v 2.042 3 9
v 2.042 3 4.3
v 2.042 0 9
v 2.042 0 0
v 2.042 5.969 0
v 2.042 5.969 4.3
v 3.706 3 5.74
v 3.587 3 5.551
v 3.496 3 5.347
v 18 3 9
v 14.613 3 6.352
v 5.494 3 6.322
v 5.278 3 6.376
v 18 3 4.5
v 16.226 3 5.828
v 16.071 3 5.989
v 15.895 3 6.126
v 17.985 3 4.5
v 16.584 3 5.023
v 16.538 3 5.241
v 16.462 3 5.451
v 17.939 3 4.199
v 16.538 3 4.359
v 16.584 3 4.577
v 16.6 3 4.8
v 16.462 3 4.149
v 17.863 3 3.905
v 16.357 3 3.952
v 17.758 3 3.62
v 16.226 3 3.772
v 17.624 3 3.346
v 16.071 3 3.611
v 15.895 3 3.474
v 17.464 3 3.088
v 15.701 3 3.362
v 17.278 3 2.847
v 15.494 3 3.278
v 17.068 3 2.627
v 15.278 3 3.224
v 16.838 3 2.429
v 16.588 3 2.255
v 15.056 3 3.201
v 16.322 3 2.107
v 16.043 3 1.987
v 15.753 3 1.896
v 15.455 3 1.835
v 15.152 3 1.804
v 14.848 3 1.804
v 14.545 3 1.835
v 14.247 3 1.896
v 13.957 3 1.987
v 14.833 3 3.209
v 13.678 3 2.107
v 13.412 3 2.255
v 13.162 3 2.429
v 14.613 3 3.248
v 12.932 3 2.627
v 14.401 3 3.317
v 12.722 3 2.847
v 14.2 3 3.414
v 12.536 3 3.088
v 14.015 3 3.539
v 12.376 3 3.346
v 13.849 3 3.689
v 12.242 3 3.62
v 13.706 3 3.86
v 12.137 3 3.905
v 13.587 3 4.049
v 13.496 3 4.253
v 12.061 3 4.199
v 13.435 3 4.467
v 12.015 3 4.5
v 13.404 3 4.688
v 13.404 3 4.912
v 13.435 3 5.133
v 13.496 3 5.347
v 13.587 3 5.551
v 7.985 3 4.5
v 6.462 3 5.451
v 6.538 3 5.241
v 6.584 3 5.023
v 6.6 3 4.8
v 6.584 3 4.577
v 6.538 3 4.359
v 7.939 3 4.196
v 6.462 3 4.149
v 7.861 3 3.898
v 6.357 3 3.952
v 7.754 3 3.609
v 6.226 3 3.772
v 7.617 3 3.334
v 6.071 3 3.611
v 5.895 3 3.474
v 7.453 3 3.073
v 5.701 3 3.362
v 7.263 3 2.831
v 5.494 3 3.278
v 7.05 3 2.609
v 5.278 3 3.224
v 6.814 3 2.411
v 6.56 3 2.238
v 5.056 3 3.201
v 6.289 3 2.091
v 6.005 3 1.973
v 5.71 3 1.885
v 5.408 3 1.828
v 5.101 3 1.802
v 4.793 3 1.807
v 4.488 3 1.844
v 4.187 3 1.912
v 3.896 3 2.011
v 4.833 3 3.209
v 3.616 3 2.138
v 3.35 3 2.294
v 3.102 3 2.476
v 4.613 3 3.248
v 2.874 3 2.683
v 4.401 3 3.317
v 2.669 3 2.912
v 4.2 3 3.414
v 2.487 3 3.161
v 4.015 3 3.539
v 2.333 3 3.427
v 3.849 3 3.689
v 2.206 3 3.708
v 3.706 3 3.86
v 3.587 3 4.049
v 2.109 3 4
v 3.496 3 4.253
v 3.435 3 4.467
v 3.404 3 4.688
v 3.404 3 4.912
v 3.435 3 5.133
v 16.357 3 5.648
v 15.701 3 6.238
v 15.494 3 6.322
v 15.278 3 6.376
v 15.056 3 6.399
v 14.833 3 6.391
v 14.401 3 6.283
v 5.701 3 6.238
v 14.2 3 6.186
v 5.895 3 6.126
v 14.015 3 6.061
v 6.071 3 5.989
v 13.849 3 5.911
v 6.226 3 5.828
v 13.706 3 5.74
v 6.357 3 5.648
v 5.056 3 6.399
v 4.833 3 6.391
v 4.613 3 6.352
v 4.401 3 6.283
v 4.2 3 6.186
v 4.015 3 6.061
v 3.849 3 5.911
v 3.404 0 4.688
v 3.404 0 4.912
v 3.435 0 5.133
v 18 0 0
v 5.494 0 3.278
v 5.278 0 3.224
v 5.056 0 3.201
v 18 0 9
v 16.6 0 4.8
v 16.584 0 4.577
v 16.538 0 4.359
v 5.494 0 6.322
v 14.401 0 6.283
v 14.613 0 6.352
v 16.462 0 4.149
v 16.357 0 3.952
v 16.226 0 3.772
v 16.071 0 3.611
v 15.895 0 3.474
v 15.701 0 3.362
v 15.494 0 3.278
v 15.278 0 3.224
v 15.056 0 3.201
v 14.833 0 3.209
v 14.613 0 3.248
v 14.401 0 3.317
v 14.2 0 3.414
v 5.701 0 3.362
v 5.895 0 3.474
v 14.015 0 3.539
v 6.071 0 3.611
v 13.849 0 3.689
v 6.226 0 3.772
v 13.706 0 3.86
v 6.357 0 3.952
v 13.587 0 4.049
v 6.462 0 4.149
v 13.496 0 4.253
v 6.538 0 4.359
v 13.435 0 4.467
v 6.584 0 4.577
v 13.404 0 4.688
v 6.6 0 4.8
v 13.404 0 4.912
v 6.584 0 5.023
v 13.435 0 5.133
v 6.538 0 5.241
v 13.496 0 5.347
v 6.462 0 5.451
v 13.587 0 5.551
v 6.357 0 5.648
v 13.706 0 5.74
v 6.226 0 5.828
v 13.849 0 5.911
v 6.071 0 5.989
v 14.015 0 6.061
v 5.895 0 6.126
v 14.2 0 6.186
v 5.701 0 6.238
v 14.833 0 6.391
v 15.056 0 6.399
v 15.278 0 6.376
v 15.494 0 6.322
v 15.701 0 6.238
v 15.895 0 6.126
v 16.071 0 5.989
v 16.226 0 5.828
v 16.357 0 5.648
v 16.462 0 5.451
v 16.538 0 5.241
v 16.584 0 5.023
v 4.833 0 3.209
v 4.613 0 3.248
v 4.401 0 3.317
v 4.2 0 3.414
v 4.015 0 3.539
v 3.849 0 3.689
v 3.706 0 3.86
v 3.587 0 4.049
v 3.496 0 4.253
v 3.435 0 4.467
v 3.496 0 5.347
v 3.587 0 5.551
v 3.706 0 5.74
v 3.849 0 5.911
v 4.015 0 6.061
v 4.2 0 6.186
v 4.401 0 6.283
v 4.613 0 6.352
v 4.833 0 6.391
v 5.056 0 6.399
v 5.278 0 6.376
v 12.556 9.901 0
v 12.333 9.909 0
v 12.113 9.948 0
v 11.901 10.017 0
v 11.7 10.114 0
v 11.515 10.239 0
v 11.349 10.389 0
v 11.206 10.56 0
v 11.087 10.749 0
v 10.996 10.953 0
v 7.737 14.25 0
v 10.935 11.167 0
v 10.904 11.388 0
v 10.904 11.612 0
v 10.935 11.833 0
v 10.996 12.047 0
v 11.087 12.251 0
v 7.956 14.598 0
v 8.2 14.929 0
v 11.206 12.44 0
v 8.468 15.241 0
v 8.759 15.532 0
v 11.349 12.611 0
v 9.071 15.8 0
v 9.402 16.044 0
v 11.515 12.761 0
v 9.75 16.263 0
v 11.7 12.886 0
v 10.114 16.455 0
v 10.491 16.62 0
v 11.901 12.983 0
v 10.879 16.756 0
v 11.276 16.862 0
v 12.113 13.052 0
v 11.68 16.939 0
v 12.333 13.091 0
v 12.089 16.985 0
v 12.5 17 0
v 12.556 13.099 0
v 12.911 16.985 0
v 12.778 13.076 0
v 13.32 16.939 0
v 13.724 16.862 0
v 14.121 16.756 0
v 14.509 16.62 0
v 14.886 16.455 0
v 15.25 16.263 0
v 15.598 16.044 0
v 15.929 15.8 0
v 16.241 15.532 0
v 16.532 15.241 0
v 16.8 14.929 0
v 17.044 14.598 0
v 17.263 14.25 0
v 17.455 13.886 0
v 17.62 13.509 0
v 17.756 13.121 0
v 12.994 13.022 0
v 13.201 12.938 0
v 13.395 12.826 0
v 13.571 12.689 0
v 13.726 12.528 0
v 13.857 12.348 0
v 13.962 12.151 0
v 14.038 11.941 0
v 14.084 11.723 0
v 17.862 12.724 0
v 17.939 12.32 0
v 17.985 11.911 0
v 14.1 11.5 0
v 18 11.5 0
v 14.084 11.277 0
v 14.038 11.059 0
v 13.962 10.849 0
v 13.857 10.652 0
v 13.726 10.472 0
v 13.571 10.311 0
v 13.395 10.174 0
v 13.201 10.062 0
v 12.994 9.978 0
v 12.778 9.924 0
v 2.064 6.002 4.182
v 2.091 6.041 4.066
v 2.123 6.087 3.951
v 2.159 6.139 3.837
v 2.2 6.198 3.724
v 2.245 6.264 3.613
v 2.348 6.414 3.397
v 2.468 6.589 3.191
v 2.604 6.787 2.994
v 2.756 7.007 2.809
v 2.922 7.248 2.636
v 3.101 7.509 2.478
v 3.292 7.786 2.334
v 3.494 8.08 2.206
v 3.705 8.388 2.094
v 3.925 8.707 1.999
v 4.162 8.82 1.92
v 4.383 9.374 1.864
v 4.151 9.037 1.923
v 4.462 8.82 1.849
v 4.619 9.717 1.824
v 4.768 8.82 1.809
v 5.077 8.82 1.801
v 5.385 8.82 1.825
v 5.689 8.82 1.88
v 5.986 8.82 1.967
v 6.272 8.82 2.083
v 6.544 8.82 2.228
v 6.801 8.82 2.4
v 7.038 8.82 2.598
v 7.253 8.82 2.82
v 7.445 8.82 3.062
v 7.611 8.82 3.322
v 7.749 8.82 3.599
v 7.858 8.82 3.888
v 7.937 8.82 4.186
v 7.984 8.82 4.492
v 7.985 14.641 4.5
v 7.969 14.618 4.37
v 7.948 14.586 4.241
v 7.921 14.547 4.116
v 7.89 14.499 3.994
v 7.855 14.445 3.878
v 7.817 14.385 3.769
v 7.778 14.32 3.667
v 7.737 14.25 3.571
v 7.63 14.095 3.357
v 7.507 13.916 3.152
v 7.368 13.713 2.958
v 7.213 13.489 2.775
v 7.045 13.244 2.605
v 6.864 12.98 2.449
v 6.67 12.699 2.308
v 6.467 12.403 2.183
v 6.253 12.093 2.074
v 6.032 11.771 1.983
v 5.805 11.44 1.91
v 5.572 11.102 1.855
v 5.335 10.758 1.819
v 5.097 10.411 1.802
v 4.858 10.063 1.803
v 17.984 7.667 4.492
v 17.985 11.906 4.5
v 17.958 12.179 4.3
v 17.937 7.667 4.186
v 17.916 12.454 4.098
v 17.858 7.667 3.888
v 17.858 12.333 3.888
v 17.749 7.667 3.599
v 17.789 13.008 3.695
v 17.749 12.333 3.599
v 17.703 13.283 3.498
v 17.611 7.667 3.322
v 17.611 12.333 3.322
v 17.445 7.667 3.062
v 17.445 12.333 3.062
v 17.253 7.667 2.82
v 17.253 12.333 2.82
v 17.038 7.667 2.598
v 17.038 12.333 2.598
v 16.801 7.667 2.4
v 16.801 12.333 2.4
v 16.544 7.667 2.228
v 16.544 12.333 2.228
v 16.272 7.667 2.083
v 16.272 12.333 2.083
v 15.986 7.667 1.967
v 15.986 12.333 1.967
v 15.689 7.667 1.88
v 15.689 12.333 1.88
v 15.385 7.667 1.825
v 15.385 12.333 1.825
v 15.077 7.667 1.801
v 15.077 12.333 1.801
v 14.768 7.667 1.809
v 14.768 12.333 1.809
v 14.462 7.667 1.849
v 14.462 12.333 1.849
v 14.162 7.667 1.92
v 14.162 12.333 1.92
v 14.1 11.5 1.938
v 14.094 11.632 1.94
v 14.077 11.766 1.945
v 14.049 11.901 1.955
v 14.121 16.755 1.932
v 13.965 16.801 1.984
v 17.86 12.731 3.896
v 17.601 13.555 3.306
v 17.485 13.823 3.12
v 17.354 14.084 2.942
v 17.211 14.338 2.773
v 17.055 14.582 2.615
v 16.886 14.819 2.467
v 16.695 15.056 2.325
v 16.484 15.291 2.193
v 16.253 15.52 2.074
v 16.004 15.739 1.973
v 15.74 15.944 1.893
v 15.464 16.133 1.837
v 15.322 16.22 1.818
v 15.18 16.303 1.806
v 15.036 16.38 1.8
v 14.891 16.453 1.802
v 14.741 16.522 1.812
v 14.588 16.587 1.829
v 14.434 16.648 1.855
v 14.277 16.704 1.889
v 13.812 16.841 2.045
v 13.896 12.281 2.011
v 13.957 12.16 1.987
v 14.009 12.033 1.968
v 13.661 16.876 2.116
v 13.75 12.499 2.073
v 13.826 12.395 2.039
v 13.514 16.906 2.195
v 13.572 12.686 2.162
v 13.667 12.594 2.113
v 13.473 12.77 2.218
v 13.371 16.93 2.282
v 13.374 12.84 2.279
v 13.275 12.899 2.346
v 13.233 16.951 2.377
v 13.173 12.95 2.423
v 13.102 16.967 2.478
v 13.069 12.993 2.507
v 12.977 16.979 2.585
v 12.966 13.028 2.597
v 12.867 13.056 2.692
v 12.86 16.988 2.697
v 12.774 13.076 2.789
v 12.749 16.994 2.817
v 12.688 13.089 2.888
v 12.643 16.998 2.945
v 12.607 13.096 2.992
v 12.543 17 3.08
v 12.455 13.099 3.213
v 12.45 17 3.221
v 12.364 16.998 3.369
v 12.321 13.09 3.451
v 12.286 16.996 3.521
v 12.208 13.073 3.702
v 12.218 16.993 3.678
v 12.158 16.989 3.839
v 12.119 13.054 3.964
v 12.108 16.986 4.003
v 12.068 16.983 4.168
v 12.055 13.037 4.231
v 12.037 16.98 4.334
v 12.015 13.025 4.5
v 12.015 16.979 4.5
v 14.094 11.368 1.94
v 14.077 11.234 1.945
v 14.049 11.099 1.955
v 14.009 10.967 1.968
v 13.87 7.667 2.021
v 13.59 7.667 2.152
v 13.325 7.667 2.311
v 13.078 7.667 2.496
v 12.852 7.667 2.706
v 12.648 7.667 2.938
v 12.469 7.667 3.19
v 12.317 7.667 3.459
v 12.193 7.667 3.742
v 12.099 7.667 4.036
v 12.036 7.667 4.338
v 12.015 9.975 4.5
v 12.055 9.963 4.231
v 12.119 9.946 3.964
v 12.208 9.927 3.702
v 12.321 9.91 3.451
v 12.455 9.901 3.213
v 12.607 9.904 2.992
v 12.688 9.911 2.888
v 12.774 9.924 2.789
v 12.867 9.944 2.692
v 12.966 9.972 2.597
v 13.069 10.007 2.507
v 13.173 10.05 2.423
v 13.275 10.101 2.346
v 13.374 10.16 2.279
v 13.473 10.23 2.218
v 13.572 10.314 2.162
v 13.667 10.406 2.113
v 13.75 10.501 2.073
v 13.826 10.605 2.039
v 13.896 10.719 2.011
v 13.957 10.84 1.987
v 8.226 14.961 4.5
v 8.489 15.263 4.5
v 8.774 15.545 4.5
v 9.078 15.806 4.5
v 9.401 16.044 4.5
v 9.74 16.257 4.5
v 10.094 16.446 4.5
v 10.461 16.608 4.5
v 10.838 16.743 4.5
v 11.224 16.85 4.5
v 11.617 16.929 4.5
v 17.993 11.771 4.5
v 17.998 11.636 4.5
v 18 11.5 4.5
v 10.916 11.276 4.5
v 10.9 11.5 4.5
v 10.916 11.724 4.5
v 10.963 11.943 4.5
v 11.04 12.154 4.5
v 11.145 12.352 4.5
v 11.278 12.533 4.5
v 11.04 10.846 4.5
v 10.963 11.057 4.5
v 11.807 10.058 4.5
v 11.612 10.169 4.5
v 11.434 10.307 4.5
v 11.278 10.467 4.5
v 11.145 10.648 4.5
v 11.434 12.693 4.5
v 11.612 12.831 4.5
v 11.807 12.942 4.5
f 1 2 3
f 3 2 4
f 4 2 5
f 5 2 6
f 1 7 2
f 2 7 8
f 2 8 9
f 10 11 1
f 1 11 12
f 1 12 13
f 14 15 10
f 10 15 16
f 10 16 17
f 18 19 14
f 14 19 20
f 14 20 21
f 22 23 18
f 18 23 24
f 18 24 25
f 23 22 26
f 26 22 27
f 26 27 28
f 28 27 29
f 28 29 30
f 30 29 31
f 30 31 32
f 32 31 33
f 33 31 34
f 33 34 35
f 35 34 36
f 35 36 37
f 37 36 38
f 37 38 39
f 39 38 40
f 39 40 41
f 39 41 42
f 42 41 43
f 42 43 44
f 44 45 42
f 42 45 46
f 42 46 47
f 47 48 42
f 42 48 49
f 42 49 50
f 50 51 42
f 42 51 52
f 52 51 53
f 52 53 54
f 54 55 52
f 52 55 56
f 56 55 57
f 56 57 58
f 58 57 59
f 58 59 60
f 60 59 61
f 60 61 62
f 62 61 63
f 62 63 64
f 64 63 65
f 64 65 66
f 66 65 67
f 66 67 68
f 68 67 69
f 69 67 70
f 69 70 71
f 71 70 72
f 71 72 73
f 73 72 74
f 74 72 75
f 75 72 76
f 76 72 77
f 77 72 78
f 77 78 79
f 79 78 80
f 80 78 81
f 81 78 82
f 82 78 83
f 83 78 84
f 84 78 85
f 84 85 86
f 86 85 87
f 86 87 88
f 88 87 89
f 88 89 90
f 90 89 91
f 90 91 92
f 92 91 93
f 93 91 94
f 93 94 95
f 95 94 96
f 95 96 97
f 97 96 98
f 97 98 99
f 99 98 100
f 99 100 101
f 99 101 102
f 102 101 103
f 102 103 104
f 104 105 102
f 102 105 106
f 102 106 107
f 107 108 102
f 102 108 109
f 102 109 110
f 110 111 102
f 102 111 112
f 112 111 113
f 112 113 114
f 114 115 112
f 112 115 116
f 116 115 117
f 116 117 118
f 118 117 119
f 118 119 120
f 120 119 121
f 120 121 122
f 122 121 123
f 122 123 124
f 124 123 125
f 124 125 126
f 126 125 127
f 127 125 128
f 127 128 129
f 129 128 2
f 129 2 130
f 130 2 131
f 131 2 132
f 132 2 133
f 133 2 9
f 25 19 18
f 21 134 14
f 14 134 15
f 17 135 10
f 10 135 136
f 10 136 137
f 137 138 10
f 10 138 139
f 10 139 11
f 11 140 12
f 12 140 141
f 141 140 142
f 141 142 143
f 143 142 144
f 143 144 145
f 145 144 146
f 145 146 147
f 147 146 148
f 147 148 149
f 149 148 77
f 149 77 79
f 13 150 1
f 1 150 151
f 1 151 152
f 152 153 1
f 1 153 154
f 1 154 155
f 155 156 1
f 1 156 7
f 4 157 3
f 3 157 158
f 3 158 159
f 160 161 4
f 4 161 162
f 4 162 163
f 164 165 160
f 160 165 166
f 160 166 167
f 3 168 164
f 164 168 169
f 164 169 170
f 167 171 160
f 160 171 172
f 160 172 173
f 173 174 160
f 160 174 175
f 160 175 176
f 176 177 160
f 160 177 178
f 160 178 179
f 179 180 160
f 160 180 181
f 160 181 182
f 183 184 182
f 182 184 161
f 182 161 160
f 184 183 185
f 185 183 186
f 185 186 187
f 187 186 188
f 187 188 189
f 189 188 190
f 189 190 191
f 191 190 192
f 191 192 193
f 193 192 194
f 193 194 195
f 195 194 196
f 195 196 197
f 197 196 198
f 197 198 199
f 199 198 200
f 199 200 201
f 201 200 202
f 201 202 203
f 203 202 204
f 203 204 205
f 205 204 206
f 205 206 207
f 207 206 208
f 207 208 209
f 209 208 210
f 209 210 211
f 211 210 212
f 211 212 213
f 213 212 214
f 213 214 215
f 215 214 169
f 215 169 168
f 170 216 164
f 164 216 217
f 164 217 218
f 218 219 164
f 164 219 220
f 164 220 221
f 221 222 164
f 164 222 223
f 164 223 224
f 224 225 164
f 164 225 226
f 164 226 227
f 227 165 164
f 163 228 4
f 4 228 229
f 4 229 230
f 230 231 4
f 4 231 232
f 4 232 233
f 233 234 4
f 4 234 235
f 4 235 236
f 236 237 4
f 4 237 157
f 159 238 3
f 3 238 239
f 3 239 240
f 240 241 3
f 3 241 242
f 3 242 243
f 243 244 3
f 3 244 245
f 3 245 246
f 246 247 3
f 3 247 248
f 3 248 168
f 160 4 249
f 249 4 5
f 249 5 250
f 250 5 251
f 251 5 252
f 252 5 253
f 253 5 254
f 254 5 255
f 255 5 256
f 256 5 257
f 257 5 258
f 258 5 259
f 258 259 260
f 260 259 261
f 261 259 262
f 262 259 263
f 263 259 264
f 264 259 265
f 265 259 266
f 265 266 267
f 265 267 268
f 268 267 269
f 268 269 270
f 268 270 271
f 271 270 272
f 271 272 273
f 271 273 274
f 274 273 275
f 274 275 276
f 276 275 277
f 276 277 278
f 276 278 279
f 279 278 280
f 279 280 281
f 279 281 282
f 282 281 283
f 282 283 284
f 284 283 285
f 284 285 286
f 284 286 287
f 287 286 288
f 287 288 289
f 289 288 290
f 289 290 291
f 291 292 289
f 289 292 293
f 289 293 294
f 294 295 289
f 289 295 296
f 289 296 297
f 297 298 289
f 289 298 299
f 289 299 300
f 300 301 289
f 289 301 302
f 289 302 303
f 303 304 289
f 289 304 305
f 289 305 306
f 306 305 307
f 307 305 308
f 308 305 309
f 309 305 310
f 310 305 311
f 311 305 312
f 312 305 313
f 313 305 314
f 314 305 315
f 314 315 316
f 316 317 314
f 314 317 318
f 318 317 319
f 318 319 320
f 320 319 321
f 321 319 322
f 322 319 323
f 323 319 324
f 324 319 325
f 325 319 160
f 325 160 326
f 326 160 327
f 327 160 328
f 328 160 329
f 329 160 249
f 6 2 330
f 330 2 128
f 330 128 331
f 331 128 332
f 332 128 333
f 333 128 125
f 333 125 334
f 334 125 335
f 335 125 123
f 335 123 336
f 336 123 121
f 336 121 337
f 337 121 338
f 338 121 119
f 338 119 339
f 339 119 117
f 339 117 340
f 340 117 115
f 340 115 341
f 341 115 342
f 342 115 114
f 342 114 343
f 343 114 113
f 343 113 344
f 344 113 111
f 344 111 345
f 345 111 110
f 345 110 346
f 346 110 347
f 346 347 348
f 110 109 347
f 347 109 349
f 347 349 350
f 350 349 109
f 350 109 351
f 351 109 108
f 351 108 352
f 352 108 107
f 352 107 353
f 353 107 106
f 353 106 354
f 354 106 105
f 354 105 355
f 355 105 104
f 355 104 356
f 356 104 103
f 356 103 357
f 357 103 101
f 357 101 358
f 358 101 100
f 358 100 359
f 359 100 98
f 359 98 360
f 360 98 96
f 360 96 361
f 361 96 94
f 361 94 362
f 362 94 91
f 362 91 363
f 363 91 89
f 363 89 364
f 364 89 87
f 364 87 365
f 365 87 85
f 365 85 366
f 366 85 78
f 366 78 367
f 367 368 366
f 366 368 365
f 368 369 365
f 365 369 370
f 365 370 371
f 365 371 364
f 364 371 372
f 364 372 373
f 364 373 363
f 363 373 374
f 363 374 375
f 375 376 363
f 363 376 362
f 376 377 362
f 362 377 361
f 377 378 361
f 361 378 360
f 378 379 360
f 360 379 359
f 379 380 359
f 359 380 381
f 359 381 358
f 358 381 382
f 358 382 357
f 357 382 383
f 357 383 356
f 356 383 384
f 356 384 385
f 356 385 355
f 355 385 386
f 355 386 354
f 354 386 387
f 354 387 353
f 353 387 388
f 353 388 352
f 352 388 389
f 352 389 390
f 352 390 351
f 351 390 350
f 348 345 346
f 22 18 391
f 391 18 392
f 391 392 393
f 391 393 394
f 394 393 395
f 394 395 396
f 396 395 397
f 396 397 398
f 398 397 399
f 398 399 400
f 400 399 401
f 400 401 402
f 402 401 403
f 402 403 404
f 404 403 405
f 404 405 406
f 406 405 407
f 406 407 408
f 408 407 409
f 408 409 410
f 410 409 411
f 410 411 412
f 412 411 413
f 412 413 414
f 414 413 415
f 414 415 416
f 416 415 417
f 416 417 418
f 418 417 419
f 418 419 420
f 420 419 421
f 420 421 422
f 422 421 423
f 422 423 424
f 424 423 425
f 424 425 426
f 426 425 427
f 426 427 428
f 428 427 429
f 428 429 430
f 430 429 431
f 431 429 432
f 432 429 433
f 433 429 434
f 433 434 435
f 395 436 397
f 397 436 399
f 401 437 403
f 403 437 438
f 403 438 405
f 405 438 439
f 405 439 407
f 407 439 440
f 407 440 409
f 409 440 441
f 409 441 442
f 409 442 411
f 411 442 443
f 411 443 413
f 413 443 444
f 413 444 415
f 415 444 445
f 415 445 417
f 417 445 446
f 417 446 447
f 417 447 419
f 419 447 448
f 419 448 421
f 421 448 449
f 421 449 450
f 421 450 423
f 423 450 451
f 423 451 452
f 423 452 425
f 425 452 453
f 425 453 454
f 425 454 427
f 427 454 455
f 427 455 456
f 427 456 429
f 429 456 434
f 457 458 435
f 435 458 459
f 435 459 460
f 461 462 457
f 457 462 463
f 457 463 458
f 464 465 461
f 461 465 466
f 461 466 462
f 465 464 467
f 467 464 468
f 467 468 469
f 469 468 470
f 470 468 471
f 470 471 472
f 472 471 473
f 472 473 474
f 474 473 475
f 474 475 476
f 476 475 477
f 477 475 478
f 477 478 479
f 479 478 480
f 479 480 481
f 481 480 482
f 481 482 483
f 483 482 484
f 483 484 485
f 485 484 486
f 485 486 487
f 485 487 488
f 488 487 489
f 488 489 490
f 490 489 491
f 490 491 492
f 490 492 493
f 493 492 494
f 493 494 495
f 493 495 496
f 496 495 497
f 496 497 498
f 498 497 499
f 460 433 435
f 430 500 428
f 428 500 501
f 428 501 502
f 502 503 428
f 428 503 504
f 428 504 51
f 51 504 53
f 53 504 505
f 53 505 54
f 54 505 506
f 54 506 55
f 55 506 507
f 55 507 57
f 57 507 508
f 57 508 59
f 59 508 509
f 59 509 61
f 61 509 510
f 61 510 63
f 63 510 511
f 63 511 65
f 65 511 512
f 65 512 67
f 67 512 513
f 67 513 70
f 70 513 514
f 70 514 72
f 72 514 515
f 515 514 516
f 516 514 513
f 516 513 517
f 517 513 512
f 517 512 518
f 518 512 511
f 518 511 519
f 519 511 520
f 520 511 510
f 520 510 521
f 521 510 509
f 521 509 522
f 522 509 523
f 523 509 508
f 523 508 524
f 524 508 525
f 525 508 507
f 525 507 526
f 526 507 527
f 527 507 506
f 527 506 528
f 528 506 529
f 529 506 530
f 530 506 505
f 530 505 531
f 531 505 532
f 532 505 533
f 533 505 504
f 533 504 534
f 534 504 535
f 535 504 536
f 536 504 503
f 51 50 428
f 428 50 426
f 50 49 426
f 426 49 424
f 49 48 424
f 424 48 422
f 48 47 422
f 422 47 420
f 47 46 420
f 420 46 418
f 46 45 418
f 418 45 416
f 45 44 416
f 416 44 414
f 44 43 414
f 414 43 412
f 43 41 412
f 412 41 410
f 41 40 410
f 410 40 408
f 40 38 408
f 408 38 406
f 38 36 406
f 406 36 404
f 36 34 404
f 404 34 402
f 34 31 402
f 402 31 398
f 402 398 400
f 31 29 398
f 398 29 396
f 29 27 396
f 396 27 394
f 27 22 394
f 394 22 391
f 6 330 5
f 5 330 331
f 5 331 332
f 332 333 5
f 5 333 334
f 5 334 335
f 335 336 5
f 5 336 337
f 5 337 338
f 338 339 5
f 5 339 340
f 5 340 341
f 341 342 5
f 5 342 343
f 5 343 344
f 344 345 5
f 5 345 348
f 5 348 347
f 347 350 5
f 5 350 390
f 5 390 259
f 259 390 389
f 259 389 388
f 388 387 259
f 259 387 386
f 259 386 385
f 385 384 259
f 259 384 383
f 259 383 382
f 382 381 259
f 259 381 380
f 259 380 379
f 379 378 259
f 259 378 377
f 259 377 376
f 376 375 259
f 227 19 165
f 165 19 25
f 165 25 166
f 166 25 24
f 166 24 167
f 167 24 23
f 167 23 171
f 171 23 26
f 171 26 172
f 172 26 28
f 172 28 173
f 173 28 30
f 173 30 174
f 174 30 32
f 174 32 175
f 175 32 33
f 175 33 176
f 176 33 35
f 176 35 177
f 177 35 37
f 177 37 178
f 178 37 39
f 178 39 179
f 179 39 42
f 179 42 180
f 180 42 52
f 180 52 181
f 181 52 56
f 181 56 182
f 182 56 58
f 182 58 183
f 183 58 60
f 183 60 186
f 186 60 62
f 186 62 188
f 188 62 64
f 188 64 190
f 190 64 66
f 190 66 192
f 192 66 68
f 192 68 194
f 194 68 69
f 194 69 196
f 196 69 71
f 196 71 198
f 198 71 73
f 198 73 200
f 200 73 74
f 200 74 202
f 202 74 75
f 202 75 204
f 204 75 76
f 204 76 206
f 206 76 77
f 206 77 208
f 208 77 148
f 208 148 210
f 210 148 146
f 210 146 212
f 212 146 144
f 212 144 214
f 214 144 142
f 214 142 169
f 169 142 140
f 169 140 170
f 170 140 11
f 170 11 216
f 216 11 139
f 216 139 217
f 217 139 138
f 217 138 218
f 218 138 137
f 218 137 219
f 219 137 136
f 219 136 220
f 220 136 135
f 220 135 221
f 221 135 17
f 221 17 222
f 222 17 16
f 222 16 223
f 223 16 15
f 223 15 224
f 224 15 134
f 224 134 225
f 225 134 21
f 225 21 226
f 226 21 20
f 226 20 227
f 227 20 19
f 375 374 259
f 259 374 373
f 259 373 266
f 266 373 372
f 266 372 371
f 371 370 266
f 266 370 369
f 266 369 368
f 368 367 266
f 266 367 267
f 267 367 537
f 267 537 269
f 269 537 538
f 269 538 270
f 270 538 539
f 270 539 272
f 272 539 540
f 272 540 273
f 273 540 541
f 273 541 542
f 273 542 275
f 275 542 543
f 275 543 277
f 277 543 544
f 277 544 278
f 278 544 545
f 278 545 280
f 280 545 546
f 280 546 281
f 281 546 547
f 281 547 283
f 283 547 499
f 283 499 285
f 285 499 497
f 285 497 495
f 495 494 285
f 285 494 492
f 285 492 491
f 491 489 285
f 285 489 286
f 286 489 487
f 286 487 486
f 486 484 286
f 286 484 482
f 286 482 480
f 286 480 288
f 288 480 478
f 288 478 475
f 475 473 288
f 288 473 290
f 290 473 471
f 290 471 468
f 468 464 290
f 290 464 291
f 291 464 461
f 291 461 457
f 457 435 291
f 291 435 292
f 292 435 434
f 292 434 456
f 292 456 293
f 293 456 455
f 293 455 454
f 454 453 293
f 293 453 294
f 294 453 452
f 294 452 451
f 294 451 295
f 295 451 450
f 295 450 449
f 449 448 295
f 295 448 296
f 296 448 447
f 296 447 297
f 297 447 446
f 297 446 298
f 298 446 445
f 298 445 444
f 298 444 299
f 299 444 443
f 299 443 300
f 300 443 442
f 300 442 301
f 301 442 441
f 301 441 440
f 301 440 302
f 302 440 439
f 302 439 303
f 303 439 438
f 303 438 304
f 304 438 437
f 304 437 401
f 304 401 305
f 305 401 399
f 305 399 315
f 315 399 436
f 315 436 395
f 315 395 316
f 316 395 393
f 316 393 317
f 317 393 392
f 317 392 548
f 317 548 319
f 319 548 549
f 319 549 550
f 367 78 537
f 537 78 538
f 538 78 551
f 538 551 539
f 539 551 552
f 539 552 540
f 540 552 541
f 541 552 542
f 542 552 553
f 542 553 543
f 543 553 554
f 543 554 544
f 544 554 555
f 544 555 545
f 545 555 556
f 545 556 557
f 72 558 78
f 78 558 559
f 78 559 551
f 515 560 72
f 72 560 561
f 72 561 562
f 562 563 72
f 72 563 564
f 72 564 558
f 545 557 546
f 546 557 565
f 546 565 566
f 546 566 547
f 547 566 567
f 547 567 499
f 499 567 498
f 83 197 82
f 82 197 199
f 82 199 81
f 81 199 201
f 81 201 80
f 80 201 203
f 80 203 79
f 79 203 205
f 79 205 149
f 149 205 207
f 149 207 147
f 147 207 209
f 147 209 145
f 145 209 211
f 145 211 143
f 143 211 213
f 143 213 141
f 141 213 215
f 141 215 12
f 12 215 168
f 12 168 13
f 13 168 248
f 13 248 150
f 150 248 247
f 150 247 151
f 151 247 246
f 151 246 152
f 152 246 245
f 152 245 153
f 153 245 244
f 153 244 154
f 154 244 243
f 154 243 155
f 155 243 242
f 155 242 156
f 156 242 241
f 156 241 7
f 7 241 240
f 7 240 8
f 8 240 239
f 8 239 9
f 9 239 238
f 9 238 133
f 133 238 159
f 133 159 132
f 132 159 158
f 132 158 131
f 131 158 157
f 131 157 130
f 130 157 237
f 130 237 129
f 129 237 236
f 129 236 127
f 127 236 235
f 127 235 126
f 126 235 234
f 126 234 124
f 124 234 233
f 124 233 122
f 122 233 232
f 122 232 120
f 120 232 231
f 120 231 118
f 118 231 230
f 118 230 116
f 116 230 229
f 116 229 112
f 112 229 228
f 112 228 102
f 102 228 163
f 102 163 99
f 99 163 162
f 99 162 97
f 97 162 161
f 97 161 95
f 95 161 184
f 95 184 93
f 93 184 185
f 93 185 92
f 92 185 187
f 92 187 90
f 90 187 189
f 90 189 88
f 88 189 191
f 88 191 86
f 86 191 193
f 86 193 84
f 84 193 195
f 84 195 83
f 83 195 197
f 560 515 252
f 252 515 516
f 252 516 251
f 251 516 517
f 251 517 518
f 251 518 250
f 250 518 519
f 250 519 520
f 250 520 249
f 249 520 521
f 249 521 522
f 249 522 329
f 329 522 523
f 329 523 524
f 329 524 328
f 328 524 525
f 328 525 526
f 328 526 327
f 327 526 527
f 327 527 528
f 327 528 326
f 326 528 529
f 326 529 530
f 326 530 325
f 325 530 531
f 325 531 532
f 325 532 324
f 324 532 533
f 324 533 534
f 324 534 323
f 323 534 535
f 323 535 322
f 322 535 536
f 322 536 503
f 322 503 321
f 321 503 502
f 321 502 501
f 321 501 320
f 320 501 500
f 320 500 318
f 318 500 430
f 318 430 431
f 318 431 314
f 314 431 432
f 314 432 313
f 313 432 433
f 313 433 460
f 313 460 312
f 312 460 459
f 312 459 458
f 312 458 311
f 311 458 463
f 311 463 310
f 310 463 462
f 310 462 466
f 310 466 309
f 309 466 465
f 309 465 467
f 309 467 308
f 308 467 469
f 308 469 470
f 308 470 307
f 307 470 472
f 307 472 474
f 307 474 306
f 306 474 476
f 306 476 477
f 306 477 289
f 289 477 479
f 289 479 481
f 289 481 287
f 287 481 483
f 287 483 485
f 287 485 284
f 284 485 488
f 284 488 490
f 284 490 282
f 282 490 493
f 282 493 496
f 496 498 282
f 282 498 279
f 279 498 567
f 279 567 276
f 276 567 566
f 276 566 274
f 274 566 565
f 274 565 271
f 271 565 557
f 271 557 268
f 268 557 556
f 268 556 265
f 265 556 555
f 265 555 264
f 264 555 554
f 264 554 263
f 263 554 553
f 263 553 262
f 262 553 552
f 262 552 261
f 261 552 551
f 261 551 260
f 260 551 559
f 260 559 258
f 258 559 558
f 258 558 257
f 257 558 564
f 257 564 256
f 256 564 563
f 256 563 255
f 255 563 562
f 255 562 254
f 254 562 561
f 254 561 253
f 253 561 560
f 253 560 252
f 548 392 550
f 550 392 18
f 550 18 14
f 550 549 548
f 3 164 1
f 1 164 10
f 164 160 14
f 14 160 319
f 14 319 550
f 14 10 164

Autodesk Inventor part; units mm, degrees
ref_plane "YZ Plane" through (0, 0, 0) normal (1, 0, 0) x (0, 1, 0)
ref_plane "XZ Plane" through (0, 0, 0) normal (0, 1, 0) x (-1, 0, 0)
ref_plane "XY Plane" through (0, 0, 0) normal (0, 0, 1) x (1, 0, 0)
sketch "Sketch1" plane through (0, 0, 0) normal (0, 0, 1) x (1, 0, 0)
  circle A0 centre (12.5, 11.5) radius 1.6
  line L0 (0, 0) -> (18, 0)
  line L1 (0, 0) -> (0, 3)
  arc A1 (18, 11.5) -> (7.7369, 14.25) centre (12.5, 11.5) ccw
  line L2 (12.5, 11.5) -> (7.7369, 14.25) construction
  line L3 (12.5, 11.5) -> (18, 11.5) construction
  line L4 (7.7369, 14.25) -> (0, 3)
  line L5 (18, 11.5) -> (18, 0)
  dimension "d17" = 3
  dimension "d19" = 11.5
  dimension "d23" = 90
  dimension "d25" = 12.5
  dimension "d31" = 5.5
  dimension "d32" = 150
  dimension "d49" = 3.2
extrude "Extrusion1" add sketch "Sketch1" along normal blind 4.5
sketch "Sketch4" plane through (0, 0, 4.5) normal (0, 0, 1) x (1, 0, 0)
  line L0 (0, 3) -> (0, 0) projected
  line L1 (18, 0) -> (18, 3)
  line L2 (0, 0) -> (18, 0)
  line L3 (18, 0) -> (18, 3)
  line L4 (18, 3) -> (0, 3)
  line L5 (0, 3) -> (0, 0)
  line L6 (18, 0) -> (18, 11.5) projected
extrude "Extrusion2" add sketch "Sketch4" along normal blind 4.5
sketch "Sketch5" plane through (0, 0, 0) normal (0, -1, 0) x (1, 0, 0)
  circle A0 centre (5, 4.8) radius 1.6
  circle A1 centre (15, 4.8) radius 1.6
  line L0 (0, 0) -> (18, 0) projected
  point P0 (20.0001, 0)
  dimension "d13" = 3.2
  dimension "d14" = 3.2
  dimension "d38" = 4.8
  dimension "d39" = 4.8
extrude "Extrusion3" cut sketch "Sketch5" against normal through all
sketch "Sketch6" plane through (0, 3, 9) normal (0, 1, 0) x (1, 0, 0)
  circle A0 centre (5, 4.2) radius 1.6 projected
  circle A1 centre (5, 4.2) radius 3
  circle A2 centre (15, 4.2) radius 1.6 projected
  circle A3 centre (15, 4.2) radius 3
  line L0 (0, 9) -> (18, 9) projected
  point P0 (20.0001, 9)
  dimension "d34" = 6
  dimension "d35" = 6
  dimension "d40" = 4.8
  dimension "d41" = 4.8
extrude "Extrusion4" cut sketch "Sketch6" along normal up to next
sketch "Sketch7" plane through (0, 0, 0) normal (0, -1, 0) x (1, 0, 0)
  line L0 (0, 0) -> (0, 9) projected
  line L1 (2.042, 0) -> (0, 0)
  line L2 (0, 0) -> (0, 9)
  line L3 (0, 9) -> (2.042, 9)
  line L4 (2.042, 9) -> (2.042, 0)
extrude "Extrusion5" cut sketch "Sketch7" against normal up to next
properties part number "lower_deck_shaft_mount_v3_printing_inna_plaszczyzna_jako_baza"
